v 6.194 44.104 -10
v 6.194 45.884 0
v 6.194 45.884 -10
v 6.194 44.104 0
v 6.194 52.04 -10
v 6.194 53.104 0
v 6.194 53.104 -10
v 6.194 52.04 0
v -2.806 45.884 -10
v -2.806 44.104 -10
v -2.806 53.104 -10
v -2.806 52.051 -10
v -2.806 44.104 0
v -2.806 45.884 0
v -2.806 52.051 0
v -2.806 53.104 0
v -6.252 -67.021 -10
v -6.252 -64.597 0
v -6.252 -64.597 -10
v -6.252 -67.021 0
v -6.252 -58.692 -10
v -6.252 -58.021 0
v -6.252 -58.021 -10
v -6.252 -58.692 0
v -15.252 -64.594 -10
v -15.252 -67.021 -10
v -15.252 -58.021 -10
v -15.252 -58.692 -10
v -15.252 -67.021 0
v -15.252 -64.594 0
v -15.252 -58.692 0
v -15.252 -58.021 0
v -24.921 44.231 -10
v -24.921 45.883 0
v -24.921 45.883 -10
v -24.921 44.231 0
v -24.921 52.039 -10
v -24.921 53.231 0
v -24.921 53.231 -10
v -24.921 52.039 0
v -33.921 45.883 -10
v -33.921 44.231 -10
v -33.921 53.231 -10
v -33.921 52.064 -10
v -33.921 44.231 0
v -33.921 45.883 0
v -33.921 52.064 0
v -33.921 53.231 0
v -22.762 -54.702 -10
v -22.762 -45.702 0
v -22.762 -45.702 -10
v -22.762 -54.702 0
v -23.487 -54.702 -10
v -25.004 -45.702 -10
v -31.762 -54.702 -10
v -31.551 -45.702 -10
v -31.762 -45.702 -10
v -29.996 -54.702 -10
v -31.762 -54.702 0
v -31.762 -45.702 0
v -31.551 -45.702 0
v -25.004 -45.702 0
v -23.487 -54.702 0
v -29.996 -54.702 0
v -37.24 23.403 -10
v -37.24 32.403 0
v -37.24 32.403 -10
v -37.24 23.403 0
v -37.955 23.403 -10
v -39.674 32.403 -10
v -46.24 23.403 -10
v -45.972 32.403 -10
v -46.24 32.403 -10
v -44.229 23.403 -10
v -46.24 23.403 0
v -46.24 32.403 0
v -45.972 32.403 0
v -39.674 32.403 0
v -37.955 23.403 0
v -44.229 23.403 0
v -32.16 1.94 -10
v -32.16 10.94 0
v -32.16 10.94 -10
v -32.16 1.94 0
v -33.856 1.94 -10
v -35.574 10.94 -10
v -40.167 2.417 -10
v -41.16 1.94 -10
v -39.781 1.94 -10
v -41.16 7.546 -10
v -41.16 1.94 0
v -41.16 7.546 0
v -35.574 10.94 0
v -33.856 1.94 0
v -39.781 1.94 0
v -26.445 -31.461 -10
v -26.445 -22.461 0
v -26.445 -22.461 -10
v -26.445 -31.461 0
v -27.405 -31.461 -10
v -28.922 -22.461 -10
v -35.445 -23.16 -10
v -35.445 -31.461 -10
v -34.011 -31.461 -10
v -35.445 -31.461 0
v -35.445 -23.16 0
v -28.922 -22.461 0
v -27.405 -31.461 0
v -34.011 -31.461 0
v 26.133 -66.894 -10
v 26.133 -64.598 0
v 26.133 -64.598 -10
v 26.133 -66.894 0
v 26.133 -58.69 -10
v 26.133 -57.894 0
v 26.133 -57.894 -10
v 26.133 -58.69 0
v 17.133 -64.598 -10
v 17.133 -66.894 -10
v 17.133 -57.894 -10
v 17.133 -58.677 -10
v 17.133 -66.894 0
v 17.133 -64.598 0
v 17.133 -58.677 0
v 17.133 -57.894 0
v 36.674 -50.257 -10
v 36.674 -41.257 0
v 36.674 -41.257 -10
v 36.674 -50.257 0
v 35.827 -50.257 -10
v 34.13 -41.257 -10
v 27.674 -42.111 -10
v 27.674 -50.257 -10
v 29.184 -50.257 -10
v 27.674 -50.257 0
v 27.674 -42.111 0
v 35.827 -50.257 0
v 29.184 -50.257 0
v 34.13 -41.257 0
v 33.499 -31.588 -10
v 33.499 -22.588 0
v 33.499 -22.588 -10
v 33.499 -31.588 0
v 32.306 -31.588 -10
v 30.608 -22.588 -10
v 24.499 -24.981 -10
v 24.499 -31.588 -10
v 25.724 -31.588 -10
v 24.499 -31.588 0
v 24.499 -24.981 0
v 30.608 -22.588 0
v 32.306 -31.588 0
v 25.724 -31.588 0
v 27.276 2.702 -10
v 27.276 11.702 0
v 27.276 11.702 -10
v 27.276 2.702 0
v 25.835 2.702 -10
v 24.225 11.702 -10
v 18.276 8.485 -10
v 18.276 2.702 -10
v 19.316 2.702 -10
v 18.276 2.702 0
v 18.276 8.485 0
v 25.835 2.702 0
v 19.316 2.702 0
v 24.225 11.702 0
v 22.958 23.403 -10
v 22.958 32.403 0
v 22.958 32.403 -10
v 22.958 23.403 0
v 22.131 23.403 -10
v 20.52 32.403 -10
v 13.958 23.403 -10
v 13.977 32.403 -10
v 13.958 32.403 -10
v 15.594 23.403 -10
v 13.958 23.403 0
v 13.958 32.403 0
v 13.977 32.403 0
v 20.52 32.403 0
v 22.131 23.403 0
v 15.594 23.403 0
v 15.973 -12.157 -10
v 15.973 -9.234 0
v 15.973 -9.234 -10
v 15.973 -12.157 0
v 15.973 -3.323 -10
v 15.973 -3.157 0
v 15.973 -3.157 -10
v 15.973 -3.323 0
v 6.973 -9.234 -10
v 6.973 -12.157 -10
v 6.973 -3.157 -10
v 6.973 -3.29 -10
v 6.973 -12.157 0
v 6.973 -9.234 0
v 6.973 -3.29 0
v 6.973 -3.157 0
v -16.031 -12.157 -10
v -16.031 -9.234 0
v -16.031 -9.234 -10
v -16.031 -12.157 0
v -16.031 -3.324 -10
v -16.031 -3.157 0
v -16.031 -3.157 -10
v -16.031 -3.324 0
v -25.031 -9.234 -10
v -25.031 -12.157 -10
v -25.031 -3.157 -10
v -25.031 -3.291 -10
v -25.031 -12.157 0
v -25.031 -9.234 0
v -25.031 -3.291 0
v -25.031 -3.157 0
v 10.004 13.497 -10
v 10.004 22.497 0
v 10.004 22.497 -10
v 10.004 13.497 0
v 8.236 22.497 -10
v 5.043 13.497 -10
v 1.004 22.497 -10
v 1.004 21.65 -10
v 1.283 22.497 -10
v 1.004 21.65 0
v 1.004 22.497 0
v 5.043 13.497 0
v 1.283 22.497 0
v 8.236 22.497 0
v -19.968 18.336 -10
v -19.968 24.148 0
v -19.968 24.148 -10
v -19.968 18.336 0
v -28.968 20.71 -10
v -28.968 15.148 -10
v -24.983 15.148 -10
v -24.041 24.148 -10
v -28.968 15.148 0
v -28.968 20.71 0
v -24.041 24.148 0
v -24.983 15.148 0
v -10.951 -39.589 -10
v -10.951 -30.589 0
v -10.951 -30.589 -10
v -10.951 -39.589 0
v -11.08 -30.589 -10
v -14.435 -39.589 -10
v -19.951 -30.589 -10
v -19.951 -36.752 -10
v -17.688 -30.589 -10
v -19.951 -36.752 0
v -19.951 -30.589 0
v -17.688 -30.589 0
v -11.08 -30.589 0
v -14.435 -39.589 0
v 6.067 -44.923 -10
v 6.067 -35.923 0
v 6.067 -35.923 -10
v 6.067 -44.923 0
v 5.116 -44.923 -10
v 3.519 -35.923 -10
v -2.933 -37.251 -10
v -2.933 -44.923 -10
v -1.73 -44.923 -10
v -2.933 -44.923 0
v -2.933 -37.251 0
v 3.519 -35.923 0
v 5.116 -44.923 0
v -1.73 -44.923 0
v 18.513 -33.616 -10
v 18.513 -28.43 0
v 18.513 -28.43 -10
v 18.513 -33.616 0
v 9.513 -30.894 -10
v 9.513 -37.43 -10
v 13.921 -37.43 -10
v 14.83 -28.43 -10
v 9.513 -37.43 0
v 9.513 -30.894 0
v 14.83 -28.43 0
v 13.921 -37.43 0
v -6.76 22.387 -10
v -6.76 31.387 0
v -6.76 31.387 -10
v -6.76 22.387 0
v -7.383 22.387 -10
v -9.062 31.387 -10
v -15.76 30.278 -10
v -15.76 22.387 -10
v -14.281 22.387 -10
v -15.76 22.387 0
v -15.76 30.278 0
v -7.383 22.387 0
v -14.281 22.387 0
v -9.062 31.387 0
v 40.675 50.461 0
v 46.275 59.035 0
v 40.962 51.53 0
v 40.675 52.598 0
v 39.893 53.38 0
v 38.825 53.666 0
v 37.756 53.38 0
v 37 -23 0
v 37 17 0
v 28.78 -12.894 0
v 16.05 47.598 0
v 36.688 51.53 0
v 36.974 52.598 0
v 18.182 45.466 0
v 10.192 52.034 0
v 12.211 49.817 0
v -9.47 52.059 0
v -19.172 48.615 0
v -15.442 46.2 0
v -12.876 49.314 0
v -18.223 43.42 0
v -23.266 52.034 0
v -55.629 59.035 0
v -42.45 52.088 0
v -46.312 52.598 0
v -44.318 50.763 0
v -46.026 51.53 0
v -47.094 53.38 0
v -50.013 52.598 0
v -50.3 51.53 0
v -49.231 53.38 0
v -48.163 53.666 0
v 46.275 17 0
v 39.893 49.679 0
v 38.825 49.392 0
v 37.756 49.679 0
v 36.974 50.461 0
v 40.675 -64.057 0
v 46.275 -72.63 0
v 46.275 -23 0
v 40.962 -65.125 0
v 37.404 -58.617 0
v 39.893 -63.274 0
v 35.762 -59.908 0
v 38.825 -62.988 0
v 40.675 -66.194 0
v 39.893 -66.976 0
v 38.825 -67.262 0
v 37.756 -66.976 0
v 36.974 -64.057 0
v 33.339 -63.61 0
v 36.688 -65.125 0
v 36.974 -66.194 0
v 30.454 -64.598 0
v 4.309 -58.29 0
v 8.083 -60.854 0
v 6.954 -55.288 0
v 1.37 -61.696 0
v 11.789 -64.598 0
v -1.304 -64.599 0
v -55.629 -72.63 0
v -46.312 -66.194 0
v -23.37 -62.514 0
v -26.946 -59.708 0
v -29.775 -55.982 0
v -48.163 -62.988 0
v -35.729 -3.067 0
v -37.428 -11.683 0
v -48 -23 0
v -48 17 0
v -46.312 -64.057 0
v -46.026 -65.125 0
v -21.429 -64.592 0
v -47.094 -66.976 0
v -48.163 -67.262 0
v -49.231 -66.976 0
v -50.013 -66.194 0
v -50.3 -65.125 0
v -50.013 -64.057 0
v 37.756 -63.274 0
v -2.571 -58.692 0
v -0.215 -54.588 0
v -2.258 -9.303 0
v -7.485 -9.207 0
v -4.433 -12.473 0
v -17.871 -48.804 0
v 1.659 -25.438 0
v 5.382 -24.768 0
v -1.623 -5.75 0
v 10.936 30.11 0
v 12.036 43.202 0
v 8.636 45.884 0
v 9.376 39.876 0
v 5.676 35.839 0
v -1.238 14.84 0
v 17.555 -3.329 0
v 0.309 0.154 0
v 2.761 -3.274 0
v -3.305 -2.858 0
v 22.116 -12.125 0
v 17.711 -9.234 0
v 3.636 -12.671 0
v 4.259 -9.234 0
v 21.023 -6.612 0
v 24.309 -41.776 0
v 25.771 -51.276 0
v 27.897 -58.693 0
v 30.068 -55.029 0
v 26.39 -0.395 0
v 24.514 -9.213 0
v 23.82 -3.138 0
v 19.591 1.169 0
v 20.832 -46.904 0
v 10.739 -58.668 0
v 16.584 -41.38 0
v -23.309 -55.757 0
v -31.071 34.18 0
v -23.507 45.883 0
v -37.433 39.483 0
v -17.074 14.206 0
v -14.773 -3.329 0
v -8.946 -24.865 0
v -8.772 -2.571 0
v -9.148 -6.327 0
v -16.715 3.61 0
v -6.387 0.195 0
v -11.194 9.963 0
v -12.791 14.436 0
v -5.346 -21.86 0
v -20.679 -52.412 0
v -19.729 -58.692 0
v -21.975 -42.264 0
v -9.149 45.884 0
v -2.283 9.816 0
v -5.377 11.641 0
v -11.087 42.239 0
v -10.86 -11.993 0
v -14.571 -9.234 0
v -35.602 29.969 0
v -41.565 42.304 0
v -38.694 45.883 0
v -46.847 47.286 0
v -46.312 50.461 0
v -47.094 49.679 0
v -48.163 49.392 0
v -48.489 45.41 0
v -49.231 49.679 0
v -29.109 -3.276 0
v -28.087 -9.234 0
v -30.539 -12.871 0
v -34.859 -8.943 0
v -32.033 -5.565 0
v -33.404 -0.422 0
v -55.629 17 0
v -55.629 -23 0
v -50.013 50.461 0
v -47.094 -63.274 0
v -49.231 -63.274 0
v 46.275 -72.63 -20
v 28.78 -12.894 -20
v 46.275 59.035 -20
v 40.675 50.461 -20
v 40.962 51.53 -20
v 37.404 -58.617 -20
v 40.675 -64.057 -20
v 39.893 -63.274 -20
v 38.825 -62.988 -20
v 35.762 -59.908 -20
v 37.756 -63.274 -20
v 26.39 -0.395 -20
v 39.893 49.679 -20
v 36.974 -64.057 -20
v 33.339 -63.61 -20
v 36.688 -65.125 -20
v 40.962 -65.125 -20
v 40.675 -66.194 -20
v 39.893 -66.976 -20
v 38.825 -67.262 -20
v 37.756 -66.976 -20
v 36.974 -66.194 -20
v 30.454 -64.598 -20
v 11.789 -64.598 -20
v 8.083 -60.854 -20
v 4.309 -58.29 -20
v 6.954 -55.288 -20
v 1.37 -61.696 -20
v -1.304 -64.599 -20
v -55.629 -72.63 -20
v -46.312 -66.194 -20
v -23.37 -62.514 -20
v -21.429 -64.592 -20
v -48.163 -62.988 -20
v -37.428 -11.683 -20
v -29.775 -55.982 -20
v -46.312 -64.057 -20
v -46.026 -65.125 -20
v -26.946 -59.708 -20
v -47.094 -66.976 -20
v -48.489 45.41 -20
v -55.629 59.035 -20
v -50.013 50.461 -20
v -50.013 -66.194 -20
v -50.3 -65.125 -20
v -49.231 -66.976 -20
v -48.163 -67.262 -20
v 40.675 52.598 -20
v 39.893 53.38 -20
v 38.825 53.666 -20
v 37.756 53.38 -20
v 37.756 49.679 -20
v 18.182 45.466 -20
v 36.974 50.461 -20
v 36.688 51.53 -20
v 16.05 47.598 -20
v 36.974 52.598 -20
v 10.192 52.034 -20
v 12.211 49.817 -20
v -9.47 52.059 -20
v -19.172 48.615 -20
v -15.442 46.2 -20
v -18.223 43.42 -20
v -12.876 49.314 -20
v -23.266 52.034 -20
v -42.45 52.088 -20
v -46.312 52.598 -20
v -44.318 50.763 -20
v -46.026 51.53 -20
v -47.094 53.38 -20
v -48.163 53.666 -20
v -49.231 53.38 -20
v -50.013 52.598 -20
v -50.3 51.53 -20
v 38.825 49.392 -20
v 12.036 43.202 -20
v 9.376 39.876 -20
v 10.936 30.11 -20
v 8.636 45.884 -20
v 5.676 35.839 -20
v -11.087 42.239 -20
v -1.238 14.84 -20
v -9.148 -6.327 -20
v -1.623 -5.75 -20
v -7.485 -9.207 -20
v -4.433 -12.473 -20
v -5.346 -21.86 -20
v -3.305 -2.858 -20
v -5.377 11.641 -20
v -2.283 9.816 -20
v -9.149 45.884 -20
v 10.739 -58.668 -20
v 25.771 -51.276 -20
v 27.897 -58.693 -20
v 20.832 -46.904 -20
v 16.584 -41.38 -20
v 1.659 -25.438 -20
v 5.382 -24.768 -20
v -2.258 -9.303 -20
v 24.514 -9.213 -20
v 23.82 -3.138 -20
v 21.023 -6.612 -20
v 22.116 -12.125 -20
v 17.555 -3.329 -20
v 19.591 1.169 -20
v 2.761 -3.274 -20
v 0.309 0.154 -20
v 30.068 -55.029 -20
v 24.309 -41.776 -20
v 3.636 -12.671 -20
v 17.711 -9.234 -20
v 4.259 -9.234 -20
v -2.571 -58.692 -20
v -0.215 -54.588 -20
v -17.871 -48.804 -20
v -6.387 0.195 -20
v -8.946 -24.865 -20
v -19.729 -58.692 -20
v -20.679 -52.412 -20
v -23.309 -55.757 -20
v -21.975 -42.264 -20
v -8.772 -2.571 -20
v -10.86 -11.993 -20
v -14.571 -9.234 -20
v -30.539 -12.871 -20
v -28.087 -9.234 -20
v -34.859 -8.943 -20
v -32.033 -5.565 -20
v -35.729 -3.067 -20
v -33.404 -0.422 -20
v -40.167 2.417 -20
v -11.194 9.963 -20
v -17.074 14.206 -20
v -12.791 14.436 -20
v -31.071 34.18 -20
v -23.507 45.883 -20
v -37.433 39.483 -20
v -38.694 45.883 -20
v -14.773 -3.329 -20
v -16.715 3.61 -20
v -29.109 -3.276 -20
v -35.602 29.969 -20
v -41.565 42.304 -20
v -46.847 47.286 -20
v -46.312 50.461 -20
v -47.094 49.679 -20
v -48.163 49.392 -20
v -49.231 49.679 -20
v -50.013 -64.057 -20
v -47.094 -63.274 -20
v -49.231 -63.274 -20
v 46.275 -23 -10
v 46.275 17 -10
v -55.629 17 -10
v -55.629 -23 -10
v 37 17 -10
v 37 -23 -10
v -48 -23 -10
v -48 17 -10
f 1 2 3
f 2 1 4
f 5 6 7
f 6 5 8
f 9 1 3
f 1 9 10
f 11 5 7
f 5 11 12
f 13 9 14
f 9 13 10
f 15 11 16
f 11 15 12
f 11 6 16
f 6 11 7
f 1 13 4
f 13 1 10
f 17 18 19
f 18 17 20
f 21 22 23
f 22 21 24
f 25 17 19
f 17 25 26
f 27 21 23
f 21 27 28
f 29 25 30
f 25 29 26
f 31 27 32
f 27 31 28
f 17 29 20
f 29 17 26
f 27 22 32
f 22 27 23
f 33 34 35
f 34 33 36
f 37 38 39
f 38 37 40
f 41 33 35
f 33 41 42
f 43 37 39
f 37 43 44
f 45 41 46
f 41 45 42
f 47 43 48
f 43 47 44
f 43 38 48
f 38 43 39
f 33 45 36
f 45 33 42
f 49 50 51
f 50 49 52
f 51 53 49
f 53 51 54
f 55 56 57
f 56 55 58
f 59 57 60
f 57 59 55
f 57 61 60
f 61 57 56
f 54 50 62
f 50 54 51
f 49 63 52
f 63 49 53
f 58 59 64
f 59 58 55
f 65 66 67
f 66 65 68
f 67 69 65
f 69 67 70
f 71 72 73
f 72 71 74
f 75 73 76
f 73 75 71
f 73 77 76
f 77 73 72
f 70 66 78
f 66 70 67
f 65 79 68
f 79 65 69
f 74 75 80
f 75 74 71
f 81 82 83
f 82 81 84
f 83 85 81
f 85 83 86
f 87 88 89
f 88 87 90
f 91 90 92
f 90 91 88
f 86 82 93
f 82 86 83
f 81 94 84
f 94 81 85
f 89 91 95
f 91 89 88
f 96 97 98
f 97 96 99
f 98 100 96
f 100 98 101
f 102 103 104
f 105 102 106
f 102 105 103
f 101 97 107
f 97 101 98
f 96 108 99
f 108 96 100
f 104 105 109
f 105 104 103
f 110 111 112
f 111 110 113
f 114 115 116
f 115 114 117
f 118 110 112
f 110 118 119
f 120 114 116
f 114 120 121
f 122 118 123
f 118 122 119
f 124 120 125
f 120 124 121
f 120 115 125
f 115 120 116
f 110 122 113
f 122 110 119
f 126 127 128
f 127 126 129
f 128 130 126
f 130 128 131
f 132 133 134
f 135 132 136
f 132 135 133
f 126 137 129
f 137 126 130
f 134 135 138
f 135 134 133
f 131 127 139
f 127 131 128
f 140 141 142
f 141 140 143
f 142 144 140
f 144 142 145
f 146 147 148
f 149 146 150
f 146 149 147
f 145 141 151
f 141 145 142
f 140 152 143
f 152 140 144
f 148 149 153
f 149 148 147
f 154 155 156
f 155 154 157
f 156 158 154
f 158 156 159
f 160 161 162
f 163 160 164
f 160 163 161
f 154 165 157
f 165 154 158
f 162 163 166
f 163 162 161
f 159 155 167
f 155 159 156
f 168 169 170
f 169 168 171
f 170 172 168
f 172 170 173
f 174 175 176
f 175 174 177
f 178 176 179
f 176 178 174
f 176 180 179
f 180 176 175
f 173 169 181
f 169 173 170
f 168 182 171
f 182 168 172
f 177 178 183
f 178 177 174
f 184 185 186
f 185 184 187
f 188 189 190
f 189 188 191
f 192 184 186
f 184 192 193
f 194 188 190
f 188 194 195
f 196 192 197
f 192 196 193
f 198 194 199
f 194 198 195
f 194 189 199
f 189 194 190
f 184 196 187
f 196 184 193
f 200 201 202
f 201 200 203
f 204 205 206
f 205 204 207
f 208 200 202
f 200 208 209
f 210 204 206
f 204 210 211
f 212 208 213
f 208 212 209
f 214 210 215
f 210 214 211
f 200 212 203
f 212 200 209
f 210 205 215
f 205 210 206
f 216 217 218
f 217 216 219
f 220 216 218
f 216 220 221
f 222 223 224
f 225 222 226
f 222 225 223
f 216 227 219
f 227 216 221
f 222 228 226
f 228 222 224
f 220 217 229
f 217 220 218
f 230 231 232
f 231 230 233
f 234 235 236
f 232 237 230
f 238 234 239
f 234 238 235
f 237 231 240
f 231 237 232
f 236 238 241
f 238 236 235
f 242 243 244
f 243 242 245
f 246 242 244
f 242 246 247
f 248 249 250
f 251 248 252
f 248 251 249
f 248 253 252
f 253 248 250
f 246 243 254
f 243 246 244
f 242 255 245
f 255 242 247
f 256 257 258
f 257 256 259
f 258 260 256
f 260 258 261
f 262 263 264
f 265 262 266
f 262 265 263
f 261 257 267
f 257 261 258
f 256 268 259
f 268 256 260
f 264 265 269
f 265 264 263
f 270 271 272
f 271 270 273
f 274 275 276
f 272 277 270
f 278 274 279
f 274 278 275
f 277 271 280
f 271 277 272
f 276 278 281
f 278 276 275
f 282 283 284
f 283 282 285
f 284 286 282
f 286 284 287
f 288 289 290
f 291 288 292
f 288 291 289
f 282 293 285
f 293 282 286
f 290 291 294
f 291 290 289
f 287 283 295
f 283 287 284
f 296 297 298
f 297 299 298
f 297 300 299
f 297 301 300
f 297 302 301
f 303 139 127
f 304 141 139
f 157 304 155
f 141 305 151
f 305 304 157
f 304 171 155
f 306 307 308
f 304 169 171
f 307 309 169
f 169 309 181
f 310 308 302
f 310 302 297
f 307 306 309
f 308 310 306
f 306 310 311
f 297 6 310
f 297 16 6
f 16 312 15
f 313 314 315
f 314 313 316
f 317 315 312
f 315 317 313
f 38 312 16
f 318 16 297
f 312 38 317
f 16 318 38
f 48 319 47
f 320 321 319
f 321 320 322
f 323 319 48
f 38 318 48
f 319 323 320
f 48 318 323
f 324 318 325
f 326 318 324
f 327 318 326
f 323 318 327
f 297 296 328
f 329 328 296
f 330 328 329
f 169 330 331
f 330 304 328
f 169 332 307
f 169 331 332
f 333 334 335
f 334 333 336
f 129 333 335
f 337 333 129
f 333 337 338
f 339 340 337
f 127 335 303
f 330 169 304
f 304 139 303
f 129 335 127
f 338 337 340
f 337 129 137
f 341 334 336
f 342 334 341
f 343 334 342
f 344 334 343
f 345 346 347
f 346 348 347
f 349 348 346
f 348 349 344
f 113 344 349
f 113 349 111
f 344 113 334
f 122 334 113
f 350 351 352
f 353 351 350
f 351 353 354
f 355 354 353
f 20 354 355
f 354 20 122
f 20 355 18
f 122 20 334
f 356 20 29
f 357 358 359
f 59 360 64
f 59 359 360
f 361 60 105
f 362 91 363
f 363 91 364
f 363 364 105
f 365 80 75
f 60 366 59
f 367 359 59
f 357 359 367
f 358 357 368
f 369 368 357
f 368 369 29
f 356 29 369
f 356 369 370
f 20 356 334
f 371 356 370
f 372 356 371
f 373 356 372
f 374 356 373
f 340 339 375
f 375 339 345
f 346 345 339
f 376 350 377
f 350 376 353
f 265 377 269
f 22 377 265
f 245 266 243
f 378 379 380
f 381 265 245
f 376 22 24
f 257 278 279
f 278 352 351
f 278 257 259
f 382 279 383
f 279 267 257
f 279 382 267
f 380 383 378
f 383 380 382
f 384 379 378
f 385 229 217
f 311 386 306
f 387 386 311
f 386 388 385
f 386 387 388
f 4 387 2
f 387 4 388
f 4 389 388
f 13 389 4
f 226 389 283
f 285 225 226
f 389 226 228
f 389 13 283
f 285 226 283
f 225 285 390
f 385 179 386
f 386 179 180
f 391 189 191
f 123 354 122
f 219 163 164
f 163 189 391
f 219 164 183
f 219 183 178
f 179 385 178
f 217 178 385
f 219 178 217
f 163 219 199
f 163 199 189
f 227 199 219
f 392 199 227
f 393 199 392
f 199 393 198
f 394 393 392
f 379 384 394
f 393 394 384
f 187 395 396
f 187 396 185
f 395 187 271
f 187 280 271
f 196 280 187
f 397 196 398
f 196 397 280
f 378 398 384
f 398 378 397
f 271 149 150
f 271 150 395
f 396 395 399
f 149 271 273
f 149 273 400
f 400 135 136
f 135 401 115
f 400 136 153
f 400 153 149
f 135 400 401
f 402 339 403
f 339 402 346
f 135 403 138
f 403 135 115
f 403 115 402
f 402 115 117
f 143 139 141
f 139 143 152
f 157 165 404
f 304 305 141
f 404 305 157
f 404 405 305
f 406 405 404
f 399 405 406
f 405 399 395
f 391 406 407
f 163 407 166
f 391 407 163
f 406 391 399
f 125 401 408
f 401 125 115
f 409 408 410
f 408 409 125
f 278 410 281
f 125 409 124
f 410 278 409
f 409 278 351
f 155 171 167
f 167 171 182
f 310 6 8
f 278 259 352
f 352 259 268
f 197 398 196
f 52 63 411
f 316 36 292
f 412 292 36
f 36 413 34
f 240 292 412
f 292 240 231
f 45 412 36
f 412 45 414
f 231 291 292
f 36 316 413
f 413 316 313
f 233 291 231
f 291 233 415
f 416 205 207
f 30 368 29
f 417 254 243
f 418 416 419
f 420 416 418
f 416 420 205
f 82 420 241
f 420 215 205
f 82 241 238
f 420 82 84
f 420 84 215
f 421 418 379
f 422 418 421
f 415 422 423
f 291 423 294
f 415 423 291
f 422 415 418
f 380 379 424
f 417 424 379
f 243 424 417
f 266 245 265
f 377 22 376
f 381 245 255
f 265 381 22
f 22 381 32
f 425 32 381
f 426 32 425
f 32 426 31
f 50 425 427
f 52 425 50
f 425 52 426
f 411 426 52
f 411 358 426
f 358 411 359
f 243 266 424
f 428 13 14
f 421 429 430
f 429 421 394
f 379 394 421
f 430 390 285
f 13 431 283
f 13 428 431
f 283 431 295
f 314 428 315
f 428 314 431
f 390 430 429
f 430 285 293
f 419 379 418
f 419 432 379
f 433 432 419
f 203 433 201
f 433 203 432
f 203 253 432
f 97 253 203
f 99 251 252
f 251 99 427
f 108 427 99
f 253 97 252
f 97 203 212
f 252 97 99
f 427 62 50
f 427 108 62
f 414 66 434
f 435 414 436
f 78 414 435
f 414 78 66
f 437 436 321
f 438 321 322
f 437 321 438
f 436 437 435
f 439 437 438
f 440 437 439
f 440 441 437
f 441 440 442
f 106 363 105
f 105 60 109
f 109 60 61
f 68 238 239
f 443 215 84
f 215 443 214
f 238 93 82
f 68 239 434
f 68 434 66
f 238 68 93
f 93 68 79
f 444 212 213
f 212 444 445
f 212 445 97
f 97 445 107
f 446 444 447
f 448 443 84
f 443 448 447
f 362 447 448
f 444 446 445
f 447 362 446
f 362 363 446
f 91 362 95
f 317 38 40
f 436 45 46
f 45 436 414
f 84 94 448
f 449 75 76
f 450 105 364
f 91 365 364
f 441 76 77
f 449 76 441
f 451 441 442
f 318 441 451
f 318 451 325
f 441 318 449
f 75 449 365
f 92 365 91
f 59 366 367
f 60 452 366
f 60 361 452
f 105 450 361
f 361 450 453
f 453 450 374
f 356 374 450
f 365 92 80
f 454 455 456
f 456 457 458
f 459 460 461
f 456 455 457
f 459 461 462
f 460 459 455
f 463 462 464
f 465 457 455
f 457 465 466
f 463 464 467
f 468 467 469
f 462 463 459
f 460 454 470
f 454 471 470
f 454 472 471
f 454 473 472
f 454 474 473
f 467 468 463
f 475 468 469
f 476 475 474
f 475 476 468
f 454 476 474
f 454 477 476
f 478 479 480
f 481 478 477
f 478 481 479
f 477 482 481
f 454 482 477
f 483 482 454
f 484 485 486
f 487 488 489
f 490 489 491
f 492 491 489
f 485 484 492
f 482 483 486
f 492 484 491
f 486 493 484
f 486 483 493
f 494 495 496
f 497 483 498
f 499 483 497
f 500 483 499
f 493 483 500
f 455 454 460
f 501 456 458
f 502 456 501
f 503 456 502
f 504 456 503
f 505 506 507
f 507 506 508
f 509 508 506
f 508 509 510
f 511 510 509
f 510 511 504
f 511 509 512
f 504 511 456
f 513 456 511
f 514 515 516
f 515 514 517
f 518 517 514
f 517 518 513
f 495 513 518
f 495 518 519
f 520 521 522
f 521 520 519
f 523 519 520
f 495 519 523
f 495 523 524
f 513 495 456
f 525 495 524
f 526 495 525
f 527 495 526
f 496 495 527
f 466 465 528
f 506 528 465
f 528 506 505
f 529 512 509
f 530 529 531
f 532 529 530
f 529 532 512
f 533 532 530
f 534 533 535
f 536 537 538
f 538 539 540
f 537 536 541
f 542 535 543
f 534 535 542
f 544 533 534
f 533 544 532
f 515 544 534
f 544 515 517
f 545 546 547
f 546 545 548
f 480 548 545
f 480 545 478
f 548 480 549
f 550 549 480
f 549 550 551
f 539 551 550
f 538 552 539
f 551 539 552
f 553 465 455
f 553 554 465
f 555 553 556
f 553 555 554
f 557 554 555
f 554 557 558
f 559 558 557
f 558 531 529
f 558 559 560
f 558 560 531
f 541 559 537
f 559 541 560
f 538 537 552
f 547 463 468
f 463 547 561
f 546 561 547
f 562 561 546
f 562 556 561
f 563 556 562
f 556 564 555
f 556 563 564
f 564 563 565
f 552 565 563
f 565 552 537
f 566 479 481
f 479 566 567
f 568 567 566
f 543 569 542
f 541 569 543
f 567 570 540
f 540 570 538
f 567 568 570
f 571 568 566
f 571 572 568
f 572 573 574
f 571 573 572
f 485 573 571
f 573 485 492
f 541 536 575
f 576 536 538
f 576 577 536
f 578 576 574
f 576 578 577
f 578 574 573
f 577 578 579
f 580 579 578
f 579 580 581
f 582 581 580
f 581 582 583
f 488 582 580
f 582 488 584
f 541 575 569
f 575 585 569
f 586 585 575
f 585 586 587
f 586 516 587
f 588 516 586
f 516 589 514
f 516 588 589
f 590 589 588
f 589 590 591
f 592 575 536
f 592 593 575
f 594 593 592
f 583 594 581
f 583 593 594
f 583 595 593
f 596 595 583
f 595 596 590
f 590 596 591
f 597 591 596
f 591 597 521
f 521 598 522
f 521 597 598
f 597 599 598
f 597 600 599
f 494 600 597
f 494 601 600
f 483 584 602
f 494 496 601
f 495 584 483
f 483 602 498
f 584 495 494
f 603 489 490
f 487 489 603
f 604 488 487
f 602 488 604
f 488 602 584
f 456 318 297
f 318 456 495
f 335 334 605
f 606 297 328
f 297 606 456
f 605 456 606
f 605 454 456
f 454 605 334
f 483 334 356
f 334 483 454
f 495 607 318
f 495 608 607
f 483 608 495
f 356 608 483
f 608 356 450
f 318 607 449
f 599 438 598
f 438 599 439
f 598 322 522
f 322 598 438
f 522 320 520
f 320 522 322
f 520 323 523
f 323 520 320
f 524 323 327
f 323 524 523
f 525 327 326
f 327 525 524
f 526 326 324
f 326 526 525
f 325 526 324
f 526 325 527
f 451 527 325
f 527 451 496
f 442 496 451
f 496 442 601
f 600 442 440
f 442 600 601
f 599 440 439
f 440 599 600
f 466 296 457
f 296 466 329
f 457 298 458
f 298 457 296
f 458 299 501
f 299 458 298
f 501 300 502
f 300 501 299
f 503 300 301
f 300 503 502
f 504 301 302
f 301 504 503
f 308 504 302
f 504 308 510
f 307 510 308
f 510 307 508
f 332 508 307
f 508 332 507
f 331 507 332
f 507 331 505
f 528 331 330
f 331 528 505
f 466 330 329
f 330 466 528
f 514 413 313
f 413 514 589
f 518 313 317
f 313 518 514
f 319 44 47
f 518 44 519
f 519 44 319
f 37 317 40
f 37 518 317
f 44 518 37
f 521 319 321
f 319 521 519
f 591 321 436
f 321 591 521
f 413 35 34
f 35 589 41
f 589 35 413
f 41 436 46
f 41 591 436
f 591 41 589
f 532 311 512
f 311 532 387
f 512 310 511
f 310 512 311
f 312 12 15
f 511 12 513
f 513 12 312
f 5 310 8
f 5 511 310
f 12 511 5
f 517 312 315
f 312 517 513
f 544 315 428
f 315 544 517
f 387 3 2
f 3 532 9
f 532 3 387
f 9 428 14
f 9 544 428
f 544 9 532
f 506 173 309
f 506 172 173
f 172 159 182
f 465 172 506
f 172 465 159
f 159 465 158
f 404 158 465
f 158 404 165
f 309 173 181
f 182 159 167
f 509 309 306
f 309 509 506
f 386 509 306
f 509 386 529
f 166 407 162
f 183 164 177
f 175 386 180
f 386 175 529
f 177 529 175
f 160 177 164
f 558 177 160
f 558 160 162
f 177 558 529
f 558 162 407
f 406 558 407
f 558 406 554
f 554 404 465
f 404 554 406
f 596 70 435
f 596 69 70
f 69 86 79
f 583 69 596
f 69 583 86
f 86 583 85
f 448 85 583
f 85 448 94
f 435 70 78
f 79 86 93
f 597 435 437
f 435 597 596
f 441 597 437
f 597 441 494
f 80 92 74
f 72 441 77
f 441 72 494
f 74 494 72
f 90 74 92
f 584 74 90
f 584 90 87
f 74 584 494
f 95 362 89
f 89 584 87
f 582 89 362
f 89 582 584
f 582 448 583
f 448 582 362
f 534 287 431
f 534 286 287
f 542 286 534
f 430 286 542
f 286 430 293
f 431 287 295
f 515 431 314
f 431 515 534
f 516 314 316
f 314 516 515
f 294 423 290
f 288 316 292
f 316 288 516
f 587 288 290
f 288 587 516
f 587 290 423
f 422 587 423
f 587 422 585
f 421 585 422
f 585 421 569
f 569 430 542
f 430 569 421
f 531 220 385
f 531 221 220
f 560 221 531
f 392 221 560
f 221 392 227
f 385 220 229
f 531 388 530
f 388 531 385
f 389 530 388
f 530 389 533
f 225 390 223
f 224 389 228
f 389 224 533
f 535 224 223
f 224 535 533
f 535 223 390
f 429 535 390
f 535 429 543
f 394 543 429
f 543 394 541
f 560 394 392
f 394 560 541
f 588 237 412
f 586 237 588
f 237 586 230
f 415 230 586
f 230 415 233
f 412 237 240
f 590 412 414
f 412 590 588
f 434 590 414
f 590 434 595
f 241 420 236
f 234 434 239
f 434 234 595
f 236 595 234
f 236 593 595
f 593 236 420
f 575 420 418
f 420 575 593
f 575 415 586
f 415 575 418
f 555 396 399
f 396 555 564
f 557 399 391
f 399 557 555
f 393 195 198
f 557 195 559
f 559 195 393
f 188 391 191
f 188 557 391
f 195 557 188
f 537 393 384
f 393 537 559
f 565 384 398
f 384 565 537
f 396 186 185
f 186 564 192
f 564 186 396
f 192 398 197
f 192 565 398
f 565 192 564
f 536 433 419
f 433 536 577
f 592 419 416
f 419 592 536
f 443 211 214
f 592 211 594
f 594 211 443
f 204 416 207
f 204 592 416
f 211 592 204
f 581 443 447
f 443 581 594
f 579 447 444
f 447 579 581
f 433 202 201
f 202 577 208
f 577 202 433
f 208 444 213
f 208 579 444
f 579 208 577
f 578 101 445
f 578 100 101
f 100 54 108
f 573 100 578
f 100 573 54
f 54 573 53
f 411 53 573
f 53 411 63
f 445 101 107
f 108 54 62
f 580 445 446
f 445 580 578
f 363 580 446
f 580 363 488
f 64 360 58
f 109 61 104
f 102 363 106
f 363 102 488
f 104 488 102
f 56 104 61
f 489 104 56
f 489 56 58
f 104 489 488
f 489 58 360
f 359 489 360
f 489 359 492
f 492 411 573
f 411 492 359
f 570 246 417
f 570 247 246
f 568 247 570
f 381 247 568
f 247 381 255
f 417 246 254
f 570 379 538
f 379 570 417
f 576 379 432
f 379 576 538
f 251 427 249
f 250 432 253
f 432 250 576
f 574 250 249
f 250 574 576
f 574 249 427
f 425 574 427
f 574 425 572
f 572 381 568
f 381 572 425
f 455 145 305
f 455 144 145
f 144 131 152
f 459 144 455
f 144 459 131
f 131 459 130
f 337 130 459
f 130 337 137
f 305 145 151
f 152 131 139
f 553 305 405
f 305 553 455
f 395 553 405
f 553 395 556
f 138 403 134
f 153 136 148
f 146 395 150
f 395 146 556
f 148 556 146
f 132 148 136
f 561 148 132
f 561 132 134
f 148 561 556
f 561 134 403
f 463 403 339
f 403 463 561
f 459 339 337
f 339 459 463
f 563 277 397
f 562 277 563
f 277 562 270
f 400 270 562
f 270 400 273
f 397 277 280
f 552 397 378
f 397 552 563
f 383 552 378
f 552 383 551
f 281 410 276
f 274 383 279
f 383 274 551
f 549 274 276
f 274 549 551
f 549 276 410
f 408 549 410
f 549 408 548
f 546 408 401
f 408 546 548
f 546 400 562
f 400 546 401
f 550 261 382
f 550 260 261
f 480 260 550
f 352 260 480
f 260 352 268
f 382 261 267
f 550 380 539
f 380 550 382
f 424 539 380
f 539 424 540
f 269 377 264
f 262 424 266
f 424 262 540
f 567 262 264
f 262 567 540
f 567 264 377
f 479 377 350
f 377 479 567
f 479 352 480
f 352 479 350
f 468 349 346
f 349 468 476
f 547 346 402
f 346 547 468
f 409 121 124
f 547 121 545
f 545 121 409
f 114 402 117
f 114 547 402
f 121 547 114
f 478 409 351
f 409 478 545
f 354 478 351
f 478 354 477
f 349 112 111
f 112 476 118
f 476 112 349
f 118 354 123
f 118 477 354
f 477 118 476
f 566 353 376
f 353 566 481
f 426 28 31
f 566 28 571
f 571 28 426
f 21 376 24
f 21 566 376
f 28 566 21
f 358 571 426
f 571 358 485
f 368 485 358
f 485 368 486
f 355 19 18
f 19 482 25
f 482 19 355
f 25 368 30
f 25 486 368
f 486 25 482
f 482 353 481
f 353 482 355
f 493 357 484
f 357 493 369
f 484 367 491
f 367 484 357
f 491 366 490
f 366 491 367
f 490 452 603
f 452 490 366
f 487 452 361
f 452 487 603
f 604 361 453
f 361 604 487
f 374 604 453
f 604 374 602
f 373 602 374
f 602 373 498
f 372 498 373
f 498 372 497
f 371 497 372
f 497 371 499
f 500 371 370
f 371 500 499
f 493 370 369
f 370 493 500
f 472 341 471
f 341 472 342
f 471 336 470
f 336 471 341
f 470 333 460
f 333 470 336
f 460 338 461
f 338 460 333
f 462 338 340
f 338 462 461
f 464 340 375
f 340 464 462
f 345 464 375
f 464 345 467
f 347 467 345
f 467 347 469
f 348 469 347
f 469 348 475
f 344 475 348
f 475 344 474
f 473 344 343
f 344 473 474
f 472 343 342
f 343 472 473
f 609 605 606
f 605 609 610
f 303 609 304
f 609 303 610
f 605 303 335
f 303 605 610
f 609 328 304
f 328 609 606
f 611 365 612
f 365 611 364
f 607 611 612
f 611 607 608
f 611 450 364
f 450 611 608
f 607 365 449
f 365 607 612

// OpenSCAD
brdr = [
  [13.724739, -160.96538],
  [115.62938, -160.96538],
  [115.62938, -292.63019],
  [13.724739, -292.63019],
  [13.724739, -160.96538]
];


inner_col = [[[32.103054,-278.69291999999996],[49.261385000000004,-278.66801999999996],[51.917216,-280.85355999999996],[48.211044,-284.59788],[29.545903,-284.59788],[26.660615,-283.60952]],
[[22.596154,-278.61696],[24.237569999999998,-279.90757],[29.931525999999998,-275.02929],[37.884029999999996,-232.12463],[35.485676999999995,-229.21268],[31.220273999999996,-232.89434]],
[[39.167781,-266.90365],[34.228941999999996,-271.2762],[35.690704,-261.77613],[56.363804,-232.67098000000001],[62.257853000000004,-229.30267],[54.61755900000001,-244.76842],[43.415824,-261.3797]],
[[65.346066,-241.86003],[60.214921999999994,-274.58819],[55.690822,-278.29008],[53.045893,-275.28821999999997],[58.340521,-245.43789999999996],[64.433465,-232.47342]],
[[62.571182,-278.69239],[79.728879,-278.69239999999996],[83.37029700000001,-282.5137],[81.428999,-284.59189],[61.303506000000006,-284.59889],[58.63001,-281.69579]],
[[86.945686,-279.70824],[89.77461299999999,-275.98166],[97.42799999999998,-231.68262],[94.85868099999999,-228.94302],[90.53878599999999,-232.87122],[83.308993,-275.75684]],
[[81.975025,-262.26427],[70.860176,-231.99322],[67.485047,-229.20661],[68.94612699999999,-244.86502000000002],[77.87092499999999,-268.80416],[80.679046,-272.41169]],
[[74.772736,-223.32869000000002],[89.10904,-223.27639000000002],[92.03324199999999,-225.56494],[88.08730599999998,-229.23364],[74.571071,-229.23364],[69.148427,-226.32714]],
[[42.445053,-223.32879000000003],[57.239090000000004,-223.27429000000004],[61.62301300000001,-225.75030000000004],[55.74122800000001,-229.23373000000004],[42.288842,-229.23373000000004],[38.977286,-226.61197]],
[[40.408984,-218.83102],[47.964465,-176.79776999999999],[43.94972799999999,-172.40157],[41.817705999999994,-174.53357],[33.61045399999999,-220.39517999999998],[36.179775,-223.13751]],
[[63.305468,-222.85755],[59.690573,-219.84618],[49.063849000000005,-189.89028000000002],[50.62369700000001,-180.12454000000002],[54.324422000000006,-184.16107000000002],[61.238130000000005,-205.15951],[62.283389,-210.18359]],
[[66.38702099999999,-219.80461],[71.19391999999999,-210.03718],[72.79106399999999,-205.56375],[78.22279499999999,-176.58047],[75.442315,-173.79998999999998],[71.08699999999999,-177.76092999999997],[65.377416,-208.35906]],
[[69.14911,-174.11637],[72.876398,-170.68607],[69.46993599999999,-167.94065],[49.808353999999994,-167.96555],[47.789027999999995,-170.18269],[51.364115,-174.11637]],
[[83.266081,-167.96585000000002],[102.44949,-167.91205000000002],[104.3179,-169.23687],[98.694274,-174.11667],[83.507161,-174.11667],[79.172328,-171.38523]],
[[108.4893,-174.59006000000002],[100.16723999999999,-217.58265000000003],[95.729199,-223.06731000000002],[93.404412,-220.42238000000003],[101.56478999999999,-177.69556000000003],[106.84703,-172.7135]],
[[95.602503,-190.0306],[76.71512899999999,-216.39032],[68.77243099999998,-222.57147],[77.07384899999998,-205.79427],[91.07077199999998,-185.82034000000002],[97.433449,-180.51689]]];
screw_hole = [
[[23.025949327542058,-169.53900066104035],
[22.243779732896677,-170.32116732750714],
[21.175318000031908,-170.60746],
[20.106856267130958,-170.32116732752309],
[19.32468667247389,-169.539000661068],
[19.03839,-168.47054],
[19.324683339189324,-167.40207511236088],
[20.106853380458915,-166.6199043391034],
[21.17531800008614,-166.33361],
[22.24378261961568,-166.6199043391465],
[23.02595266085374,-167.40207511243545],
[23.312246,-168.47054]],
[[106.31200709600651,-169.53900117503144],
[107.09417748524022,-170.32116790400312],
[108.16264000001273,-170.60745999999997],
[109.23110251477081,-170.32116790399675],
[110.01327290399986,-169.53900117502045],
[110.29957000000002,-168.47053999999997],
[110.01327623728734,-167.40207459841108],
[109.23110540144668,-166.61990376263054],
[108.16263999991789,-166.33361],
[107.09417459848221,-166.6199037626716],
[106.31200376267162,-167.4020745984822],
[106.02571,-168.47054]],
[[106.31200382283255,-284.056564640691],
[107.09417464080357,-283.27439382276754],
[108.162640000065,-282.9881],
[109.23110535925272,-283.27439382280005],
[110.01327617719997,-284.0565646407473],
[110.29957000000002,-285.12503],
[110.01327617716747,-286.19349535930894],
[109.23110535919645,-286.9756661772324],
[108.16263999993502,-287.26196],
[107.0941746407473,-286.9756661771999],
[106.31200382280005,-286.19349535925267],
[106.02571,-285.12503]],
[[23.02594334383412,-284.0565649293669],
[22.243772936547064,-283.27439415610155],
[21.175307999935573,-282.9881],
[20.106843486046966,-283.2743944894673],
[19.324673489467177,-284.05656521809794],
[19.038380000000004,-285.12503],
[19.324673489499343,-286.1934947819577],
[20.106843486102683,-286.97566551056485],
[21.175308000064337,-287.26196],
[22.24377293660286,-286.9756658438662],
[23.02594334386633,-286.1934950705772],
[23.312236999999996,-285.12503]]];

led_pos = [[35.30600000,6.60400000],
[47.75200000,-104.52100000],
[66.42100000,6.73100000],
[64.26200000,-92.20200000],
[78.74000000,-14.09700000],
[73.66000000,-35.56000000],
[67.94500000,-68.96100000],
[15.36700000,-104.39400000],
[4.82600000,-87.75700000],
[8.00100000,-69.08800000],
[14.22400000,-34.79800000],
[18.54200000,-14.09700000],
[25.52700000,-49.65700000],
[57.53100000,-49.65700000],
[31.49600000,-24.00300000],
[61.46800000,-22.35200000],
[52.45100000,-77.08900000],
[35.43300000,-82.42300000],
[22.98700000,-74.93000000],
[48.26000000,-15.11300000]];


module led_out() {
  _dy = -178;
  _dx = 23;
  xf = 1.0;
  yf = 1.0;
  for (i=[0:(len(led_pos)-1)]) {
    translate([xf*led_pos[i][0] + _dx, yf*led_pos[i][1] + _dy, -5]) cube([5,5,50], center=true);
  }

}


module block() {
  _dy = -178;
  _dx = 23;
  xf = 1.0;
  yf = 1.0;

  led_size = 9;

  difference() {
    linear_extrude(height=20) {
      difference() {
        polygon([ brdr[0], brdr[3], brdr[2], brdr[1]]);
        for (i=[0:15]) {
          polygon(inner_col[i]);
        }
        for (i=[0:3]) {
          polygon(screw_hole[i]);
        }

      }
    }

    for (i=[0:(len(led_pos)-1)]) {
      translate([xf*led_pos[i][0] + _dx, yf*led_pos[i][1] + _dy, 0]) cube([led_size,led_size,20], center=true);
    }

    translate([_dx -5, _dy- 45, 0]) cube([10, 40, 20], center=true);
    translate([_dx -5 + 95, _dy- 45, 0]) cube([10, 40, 20], center=true);

  }
}

rotate(180, [0,1,0]) translate([-60, 220]) block();
//color([1,0,0]) rotate(180, [0,1,0]) translate([-60, 220]) led_out();
